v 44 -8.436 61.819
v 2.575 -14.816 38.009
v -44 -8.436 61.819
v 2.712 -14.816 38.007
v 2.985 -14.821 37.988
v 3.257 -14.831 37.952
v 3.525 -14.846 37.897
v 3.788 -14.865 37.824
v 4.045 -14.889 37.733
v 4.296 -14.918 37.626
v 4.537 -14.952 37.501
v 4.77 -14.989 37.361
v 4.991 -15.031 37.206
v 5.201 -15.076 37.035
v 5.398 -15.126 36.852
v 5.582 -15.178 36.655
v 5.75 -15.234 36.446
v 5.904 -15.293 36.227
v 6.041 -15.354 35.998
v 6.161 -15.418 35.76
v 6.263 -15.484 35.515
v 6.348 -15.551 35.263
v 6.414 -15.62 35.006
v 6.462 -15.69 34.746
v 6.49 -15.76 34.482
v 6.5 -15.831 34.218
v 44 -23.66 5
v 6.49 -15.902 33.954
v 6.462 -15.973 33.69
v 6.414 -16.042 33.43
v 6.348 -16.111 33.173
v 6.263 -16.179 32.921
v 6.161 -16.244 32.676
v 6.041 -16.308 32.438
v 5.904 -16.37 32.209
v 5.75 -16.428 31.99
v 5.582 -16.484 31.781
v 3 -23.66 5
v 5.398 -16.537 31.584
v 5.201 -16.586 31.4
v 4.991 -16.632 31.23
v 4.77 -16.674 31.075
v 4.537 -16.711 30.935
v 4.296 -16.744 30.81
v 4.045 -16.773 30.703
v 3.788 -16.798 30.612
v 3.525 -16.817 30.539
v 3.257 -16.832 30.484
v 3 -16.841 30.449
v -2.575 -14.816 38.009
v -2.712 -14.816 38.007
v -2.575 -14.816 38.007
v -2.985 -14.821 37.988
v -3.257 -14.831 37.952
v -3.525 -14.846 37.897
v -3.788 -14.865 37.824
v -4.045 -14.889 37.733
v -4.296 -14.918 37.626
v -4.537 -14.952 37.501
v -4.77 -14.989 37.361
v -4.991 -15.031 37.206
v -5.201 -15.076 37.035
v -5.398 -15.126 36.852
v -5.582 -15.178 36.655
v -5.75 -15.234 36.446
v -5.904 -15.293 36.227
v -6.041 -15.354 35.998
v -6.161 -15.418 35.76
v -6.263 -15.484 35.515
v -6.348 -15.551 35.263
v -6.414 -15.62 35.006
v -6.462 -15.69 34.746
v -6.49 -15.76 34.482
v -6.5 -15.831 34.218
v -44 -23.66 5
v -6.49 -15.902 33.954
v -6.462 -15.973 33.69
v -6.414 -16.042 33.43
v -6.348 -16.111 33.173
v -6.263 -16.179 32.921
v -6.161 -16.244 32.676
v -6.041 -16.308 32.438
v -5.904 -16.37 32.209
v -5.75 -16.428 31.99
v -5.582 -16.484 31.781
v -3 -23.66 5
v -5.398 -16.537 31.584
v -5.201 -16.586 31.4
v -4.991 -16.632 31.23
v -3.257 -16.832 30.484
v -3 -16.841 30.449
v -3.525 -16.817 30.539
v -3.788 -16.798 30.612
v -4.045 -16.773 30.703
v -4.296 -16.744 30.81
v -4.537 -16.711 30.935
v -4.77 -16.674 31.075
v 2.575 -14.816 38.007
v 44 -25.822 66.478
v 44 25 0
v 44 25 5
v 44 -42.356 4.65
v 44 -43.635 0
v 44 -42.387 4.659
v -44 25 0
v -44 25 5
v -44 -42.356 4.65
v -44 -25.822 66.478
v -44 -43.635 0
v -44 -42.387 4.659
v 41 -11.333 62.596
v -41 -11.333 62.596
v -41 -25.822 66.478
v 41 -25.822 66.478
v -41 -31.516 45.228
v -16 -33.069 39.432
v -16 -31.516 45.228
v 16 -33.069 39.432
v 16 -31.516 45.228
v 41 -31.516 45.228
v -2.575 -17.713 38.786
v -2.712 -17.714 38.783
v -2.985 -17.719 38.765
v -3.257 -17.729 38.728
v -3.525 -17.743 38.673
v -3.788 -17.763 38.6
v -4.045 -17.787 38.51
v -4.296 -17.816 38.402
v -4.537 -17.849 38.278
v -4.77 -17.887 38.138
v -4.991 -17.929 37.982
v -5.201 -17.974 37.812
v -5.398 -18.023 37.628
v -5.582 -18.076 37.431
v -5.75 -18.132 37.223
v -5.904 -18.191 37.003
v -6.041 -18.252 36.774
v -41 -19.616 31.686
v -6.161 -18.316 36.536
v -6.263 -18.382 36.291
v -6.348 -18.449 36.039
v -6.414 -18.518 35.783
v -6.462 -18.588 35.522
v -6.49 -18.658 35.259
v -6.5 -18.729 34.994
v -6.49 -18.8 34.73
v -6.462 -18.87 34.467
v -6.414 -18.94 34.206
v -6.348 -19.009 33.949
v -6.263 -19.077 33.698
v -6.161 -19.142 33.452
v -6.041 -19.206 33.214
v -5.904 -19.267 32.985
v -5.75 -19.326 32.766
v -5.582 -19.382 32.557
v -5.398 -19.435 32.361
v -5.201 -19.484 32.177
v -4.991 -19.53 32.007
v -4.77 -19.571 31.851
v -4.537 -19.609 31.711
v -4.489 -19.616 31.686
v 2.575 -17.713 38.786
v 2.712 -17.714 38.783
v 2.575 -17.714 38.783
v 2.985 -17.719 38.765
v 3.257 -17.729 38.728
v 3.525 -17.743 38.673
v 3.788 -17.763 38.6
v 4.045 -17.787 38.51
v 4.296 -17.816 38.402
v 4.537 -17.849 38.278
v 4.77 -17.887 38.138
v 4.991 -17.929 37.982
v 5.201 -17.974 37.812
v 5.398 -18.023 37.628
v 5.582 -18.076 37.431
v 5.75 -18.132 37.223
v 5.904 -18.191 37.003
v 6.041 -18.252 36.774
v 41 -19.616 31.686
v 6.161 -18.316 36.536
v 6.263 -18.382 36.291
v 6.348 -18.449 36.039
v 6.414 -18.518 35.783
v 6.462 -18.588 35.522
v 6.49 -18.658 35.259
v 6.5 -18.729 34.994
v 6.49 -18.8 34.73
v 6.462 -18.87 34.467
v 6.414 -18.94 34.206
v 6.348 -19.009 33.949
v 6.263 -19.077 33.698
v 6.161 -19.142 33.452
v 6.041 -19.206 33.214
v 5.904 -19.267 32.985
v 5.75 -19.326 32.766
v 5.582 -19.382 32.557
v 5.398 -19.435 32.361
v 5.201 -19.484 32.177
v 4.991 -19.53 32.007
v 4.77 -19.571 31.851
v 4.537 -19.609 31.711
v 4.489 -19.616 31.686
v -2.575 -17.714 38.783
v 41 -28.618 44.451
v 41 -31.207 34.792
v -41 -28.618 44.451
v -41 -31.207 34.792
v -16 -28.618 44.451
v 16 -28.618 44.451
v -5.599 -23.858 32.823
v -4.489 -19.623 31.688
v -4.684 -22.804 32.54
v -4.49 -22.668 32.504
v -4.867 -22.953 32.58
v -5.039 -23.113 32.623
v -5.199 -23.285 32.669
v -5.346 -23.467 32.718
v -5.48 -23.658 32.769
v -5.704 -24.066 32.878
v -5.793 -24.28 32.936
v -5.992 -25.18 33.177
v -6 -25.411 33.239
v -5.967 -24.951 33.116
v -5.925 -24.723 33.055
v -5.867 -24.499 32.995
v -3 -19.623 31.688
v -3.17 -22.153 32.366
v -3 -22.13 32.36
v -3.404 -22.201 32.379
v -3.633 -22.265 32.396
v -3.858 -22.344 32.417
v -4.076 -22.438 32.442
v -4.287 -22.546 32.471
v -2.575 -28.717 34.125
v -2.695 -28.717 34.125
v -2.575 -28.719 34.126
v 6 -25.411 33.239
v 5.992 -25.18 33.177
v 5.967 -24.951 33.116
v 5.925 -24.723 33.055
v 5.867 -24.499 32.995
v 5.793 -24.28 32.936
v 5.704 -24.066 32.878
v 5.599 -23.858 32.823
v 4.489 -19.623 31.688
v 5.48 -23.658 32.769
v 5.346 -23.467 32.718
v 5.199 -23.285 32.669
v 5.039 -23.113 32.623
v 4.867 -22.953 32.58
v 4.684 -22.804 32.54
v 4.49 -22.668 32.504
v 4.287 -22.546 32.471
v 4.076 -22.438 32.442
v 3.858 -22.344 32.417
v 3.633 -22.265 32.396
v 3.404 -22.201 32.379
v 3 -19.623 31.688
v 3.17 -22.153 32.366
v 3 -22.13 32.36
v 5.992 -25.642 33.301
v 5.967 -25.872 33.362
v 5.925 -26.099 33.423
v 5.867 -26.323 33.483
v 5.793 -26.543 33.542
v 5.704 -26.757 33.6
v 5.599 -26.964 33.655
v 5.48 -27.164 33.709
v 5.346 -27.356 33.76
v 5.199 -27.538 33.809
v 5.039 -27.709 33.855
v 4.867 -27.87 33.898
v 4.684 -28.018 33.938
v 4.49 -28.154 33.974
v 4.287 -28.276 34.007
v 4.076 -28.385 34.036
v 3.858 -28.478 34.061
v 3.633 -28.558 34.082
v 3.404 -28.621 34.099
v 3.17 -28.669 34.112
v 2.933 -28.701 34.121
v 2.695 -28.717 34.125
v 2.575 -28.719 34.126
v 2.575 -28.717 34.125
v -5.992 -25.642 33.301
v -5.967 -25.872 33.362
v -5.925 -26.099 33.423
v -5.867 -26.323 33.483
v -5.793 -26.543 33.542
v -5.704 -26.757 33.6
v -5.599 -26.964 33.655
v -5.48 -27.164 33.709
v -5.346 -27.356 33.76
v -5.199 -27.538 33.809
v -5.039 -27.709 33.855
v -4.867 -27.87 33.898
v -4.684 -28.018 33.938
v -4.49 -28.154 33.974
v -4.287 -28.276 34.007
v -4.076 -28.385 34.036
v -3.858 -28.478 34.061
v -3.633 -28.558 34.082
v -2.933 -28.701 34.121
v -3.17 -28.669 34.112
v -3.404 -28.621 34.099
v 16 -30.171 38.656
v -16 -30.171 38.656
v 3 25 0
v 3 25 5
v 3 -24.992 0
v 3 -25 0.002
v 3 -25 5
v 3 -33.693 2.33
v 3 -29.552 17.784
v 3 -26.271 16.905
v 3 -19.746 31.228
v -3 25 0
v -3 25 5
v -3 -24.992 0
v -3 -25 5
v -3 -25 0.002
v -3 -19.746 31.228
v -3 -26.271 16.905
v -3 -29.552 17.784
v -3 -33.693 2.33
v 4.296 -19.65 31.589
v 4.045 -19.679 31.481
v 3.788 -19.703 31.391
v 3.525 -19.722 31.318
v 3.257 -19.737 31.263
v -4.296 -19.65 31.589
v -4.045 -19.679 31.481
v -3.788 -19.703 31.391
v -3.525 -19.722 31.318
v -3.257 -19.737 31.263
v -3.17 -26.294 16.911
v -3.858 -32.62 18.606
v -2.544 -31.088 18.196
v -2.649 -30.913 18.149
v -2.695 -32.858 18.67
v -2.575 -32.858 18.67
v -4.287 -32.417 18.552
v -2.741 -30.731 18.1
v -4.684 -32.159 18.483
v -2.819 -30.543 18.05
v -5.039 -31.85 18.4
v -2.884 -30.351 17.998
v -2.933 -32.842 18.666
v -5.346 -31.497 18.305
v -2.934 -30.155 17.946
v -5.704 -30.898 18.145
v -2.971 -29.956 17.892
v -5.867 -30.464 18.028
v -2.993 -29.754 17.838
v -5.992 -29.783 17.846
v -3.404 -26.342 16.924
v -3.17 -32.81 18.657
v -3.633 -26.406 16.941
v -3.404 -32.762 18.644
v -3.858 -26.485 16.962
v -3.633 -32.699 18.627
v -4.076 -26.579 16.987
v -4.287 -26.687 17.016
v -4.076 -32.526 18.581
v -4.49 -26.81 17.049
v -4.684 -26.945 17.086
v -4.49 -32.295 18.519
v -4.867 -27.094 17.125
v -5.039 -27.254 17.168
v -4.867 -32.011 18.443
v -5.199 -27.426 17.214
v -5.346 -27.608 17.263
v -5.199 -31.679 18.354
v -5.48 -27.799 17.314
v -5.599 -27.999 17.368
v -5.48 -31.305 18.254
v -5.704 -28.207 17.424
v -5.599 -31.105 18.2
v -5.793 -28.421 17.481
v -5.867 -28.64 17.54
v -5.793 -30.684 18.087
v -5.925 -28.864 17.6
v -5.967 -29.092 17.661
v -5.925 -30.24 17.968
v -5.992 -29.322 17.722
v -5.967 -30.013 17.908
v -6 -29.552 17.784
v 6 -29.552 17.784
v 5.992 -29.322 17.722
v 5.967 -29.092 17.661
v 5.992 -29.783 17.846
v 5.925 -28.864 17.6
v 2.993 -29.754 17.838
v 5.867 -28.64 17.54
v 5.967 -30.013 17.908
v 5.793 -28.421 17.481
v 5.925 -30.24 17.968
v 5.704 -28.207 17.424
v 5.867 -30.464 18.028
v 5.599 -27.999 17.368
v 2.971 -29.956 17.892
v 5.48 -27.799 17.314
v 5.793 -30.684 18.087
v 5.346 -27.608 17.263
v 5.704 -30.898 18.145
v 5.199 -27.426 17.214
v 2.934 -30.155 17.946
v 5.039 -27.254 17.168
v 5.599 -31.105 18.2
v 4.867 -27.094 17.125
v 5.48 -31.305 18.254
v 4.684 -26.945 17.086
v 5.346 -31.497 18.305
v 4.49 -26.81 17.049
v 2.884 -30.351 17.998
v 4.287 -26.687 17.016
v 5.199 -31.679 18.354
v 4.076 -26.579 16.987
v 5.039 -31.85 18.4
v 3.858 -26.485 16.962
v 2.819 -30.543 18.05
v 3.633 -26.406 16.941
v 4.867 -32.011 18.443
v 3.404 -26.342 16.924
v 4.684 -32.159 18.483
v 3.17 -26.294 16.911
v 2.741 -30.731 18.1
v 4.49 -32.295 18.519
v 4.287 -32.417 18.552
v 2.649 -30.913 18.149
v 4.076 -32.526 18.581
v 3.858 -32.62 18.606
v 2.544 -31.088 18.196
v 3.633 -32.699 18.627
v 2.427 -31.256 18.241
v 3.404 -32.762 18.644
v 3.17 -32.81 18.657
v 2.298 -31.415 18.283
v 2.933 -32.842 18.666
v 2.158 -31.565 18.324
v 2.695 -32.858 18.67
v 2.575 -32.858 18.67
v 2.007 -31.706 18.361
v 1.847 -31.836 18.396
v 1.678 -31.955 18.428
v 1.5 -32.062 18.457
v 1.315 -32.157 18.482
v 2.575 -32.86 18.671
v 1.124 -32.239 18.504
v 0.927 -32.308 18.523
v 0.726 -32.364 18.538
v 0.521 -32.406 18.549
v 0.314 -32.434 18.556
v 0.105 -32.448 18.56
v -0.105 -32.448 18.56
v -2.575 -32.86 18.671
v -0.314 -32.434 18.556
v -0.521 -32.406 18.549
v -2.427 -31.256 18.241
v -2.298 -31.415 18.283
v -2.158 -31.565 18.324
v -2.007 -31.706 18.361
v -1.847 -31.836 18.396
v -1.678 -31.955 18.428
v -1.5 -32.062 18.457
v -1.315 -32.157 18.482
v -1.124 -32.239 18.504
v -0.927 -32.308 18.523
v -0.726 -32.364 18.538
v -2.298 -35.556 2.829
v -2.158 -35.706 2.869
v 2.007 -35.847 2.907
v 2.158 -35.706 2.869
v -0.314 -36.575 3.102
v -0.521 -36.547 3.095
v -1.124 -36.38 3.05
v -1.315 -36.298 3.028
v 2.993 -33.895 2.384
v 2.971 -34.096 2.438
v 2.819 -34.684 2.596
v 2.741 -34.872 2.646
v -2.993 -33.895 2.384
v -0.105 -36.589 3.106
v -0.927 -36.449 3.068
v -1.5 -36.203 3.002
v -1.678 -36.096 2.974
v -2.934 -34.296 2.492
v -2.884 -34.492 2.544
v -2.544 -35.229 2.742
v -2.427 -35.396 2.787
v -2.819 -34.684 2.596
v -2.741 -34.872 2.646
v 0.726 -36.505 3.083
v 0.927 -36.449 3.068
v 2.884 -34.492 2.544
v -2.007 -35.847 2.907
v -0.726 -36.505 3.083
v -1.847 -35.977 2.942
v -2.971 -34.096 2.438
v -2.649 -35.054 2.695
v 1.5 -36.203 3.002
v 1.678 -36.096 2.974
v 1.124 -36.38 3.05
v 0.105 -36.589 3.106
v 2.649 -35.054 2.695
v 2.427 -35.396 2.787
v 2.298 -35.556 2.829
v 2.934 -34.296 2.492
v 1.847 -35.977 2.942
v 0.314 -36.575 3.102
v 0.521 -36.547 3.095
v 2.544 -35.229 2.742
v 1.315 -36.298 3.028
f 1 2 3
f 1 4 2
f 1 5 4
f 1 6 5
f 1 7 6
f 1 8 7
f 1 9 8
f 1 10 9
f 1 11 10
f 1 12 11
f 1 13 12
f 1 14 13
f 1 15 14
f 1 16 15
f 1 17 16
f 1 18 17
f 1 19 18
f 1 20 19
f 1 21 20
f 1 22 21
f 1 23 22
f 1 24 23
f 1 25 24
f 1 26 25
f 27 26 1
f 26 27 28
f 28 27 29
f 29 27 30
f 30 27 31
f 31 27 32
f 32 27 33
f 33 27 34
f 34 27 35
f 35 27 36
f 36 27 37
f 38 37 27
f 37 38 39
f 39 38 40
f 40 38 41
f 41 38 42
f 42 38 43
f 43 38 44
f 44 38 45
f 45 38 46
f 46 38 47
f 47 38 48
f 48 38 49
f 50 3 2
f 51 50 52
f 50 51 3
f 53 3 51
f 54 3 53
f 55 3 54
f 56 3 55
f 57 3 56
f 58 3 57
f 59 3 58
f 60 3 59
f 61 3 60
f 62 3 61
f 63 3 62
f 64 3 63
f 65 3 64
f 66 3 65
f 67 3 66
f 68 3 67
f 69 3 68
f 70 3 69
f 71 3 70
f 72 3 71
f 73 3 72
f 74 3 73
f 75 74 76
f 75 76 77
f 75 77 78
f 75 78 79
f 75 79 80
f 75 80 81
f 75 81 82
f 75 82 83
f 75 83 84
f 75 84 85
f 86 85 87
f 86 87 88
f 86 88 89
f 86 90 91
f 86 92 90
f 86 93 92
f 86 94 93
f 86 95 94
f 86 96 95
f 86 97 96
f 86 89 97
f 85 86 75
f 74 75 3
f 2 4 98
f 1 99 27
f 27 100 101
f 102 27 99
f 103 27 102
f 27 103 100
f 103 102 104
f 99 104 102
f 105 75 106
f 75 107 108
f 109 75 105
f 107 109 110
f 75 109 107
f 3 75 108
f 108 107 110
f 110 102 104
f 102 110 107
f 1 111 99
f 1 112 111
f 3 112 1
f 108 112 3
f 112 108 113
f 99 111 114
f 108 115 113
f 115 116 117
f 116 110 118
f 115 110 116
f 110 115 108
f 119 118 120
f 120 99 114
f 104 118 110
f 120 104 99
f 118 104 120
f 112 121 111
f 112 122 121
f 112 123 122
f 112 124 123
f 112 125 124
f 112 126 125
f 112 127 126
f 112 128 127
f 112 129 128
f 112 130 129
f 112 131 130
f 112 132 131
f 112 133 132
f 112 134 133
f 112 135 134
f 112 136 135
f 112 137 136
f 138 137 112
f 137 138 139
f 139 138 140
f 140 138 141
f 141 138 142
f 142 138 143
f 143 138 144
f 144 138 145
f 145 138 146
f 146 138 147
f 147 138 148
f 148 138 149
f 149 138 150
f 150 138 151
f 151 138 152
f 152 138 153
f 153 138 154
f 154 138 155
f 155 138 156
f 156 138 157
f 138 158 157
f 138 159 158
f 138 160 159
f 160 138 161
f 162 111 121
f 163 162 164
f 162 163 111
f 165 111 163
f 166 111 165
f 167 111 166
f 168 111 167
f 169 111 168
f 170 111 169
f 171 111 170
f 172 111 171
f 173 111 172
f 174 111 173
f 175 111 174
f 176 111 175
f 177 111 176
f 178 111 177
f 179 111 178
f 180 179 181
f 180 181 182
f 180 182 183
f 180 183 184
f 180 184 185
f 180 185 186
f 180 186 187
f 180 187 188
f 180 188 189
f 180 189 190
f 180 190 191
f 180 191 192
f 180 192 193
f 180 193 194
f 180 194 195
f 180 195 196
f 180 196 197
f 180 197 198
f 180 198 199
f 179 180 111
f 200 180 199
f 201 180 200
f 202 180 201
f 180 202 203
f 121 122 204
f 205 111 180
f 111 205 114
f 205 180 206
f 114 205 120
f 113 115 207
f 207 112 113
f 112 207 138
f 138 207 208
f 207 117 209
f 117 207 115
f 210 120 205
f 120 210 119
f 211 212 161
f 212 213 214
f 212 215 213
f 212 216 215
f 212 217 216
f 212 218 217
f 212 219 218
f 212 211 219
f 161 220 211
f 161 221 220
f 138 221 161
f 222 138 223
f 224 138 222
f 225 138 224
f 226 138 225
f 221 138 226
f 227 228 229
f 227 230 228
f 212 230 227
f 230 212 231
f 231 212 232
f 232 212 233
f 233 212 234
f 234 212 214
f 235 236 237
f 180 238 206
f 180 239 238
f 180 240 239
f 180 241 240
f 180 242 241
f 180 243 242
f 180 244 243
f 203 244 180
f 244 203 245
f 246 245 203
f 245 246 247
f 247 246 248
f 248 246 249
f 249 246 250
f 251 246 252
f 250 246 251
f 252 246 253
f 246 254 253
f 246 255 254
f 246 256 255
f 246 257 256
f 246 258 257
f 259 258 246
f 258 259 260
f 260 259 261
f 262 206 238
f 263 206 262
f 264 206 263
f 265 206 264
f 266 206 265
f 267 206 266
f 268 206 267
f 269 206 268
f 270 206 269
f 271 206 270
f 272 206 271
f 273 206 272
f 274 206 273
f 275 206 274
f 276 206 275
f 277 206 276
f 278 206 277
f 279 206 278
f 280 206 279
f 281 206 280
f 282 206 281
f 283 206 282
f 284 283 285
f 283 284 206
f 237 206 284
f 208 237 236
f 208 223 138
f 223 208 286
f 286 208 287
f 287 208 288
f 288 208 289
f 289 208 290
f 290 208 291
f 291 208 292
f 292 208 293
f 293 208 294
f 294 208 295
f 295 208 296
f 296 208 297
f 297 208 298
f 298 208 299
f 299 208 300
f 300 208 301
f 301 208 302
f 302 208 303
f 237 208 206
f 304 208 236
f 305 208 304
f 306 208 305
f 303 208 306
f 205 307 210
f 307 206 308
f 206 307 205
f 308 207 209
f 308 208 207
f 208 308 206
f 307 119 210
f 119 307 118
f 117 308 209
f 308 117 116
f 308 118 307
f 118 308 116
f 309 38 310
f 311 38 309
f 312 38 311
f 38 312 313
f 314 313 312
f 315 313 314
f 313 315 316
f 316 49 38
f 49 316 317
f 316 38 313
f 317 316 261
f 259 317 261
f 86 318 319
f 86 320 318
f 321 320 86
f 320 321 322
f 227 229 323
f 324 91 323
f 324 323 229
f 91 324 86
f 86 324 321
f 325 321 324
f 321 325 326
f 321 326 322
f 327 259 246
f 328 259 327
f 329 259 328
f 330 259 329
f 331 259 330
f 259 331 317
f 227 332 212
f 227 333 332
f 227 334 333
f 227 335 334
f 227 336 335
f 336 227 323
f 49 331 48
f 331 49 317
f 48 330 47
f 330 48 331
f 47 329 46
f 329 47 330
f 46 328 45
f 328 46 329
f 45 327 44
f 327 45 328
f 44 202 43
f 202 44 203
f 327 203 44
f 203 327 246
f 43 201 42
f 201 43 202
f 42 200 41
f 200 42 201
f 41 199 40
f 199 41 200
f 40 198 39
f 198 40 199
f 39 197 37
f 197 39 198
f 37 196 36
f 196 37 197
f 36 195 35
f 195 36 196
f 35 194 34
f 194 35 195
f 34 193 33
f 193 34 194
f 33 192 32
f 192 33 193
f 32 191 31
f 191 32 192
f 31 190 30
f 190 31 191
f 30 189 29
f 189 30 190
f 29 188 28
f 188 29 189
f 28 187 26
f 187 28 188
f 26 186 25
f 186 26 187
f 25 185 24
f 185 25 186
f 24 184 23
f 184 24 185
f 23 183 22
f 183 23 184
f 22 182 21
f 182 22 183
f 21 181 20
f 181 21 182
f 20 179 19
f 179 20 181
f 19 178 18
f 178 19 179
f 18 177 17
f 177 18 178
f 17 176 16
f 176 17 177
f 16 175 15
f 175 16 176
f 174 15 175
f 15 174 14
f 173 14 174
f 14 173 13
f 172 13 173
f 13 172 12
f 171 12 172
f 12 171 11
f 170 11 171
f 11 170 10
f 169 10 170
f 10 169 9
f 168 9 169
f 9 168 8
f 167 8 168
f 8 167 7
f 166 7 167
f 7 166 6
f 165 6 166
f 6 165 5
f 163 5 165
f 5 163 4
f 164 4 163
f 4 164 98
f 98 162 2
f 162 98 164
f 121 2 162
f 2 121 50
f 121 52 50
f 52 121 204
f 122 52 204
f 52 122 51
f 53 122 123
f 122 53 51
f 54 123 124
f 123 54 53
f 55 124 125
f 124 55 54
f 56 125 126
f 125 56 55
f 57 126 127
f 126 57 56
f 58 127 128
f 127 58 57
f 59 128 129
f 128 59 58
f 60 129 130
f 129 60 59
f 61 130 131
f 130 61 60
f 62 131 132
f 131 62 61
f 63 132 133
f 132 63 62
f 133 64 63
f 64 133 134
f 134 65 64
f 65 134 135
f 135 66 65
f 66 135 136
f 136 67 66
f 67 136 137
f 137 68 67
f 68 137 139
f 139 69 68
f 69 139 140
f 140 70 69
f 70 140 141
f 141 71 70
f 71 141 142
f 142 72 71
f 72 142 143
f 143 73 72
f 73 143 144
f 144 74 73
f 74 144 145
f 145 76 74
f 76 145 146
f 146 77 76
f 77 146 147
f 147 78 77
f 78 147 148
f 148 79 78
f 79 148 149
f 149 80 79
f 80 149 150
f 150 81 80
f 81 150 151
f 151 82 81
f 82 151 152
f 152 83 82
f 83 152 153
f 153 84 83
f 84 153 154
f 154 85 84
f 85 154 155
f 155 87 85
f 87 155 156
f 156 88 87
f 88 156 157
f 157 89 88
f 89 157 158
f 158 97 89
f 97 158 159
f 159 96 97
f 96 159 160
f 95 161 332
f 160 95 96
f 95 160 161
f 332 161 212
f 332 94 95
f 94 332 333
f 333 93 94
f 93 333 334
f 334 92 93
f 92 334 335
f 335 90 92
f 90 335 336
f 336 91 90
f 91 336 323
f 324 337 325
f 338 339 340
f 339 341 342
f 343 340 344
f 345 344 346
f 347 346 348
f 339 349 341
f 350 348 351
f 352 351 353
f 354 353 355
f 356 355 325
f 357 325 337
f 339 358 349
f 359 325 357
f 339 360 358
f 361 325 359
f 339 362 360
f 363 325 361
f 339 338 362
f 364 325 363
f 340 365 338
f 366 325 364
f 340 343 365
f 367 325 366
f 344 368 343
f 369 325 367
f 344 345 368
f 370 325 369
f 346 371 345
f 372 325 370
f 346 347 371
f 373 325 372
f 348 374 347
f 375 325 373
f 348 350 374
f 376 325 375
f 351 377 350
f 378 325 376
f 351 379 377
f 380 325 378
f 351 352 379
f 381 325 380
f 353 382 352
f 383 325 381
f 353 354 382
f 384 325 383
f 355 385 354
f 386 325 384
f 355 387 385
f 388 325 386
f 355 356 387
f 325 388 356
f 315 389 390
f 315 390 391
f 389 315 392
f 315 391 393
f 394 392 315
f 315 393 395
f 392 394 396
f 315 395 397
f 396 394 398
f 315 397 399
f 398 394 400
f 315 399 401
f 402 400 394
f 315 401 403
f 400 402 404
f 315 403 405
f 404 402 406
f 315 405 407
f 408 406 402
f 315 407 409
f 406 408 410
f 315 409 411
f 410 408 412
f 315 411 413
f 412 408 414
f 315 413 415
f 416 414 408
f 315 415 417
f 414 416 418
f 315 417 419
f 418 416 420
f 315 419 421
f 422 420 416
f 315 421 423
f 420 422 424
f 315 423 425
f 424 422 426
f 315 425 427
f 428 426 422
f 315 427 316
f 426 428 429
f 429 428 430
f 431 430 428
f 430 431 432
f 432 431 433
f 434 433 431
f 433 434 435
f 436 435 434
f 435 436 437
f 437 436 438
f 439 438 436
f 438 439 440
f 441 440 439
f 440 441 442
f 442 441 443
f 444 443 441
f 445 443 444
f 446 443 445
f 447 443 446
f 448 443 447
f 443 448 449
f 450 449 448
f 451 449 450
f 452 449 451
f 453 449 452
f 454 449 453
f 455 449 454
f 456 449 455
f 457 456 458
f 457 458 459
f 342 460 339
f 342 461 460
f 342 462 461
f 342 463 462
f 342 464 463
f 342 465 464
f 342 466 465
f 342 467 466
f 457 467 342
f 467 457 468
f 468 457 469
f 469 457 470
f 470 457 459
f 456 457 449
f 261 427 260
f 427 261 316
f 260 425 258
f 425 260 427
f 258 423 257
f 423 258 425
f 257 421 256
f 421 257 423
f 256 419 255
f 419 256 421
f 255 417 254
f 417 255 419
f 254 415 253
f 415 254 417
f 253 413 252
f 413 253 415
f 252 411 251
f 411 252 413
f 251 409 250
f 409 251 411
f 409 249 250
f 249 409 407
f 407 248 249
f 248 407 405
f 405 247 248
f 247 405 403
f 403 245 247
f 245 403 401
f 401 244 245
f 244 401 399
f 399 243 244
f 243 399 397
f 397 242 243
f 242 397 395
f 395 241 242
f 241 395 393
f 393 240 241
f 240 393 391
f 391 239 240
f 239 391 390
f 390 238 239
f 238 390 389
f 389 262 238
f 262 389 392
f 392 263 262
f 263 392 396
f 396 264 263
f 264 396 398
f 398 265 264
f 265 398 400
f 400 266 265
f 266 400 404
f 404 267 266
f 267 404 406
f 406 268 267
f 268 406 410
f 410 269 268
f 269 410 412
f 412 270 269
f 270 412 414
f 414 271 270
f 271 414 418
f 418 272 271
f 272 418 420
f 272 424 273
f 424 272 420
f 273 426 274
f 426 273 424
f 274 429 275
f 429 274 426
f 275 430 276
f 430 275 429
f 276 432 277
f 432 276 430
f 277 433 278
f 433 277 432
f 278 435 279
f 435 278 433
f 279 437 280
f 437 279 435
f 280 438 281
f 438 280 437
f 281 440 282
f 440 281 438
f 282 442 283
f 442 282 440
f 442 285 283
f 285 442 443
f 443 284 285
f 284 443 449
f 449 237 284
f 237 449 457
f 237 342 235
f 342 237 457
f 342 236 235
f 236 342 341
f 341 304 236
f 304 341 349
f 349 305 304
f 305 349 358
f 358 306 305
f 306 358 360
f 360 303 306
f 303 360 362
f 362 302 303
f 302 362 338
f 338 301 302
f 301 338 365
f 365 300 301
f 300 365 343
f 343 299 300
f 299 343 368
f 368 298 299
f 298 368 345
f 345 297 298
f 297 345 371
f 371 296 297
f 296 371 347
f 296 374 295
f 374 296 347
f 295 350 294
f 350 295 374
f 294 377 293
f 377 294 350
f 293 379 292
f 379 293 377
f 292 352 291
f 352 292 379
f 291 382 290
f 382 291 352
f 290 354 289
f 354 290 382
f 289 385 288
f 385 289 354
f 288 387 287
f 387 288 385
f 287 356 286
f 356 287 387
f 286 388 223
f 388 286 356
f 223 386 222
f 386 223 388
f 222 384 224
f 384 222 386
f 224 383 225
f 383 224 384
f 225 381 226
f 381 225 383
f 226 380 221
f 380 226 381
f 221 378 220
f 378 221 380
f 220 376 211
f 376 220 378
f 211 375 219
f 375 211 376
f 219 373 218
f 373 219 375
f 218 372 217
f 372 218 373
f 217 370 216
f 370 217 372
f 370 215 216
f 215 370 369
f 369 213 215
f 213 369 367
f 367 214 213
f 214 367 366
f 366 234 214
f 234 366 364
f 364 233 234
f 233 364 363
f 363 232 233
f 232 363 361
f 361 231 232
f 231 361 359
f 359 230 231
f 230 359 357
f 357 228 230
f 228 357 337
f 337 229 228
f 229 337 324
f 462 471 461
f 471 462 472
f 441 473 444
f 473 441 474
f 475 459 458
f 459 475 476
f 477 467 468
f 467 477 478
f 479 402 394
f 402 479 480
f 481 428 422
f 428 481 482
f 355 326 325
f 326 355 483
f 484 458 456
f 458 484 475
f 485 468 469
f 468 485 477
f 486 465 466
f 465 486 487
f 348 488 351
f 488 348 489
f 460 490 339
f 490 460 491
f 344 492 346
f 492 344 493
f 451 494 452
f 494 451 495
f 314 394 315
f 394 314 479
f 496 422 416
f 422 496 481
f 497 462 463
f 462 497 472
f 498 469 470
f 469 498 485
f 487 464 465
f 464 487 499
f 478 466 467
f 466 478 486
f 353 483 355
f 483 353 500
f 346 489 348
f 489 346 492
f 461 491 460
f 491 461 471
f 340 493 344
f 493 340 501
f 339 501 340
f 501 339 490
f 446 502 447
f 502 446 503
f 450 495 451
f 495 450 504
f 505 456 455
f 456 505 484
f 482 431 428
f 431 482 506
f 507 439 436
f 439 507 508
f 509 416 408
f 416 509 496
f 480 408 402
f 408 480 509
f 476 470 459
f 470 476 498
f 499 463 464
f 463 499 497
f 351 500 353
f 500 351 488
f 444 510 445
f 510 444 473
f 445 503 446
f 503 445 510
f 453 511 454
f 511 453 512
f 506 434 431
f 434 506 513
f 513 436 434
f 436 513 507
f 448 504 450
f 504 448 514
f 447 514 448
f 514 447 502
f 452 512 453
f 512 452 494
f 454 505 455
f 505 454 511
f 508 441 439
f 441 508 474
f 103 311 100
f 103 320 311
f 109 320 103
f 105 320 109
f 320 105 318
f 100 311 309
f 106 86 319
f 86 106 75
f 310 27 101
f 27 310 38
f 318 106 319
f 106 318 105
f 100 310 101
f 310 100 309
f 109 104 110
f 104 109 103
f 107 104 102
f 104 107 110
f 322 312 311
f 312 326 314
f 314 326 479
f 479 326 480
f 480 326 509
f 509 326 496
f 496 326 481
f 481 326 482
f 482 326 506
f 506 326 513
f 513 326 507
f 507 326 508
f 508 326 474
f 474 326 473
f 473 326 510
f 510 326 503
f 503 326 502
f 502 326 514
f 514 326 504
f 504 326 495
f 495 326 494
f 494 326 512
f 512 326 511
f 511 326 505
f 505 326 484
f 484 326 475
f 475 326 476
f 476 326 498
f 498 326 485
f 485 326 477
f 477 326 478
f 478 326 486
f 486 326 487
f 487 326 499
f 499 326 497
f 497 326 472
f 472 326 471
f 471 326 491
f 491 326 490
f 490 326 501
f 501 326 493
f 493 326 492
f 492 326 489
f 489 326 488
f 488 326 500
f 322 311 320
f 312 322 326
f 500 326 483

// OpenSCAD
//!OpenSCAD
// title      : Dockitall Parametric Charging Dock
// author     : Stuart P. Bentley (@stuartpb)
// version    : 0.1.0
// file       : dockitall.scad

/* [Measurements] */

// These measurements are based on my Pixel 2 XL in a
// Ringke Fusion case, and the cable that comes with it.

// The width of the device.
device_width = 80;
// The depth (thickness) of the device.
device_depth = 10;

// Offset of the port from the center of the bottom.
port_x_offset = 0;
// Y offset is positive ("up") going closer to the face.
port_y_offset = 0;

// The width of the USB plug.
plug_width = 11;
// The depth (thickness) of the USB plug.
plug_depth = 5.85;
// The roundness of the USB plug (currently only supports plug_depth/2 and 0).
plug_radius = plug_depth/2;
// The length of the plug before tapering off to the cable.
plug_length = 16;
// The diameter of the cable immediately following the end of the plug.
cable_gauge = 5;

/* [Tolerances] */

// How much extra space to leave around the device (and through-hole for plug).
device_tolerance = 1;
// How much extra space to leave around the plug.
plug_tolerance = .5;
// How much extra space to leave around the cable.
cable_tolerance = .5;

/* [Parameters] */

// What angle to recline the phone at (from a straight-up zero degrees).
recline_angle = 15;

base_length = 50;

// The height of the dock underneath the phone.
// Should be at least as long as the plug, plus room for the cable to turn.
chin_height = 32;

back_wall_length = 32;
left_wall_length = back_wall_length;
right_wall_length = left_wall_length;
// The height of the lip in front of the device.
lip_height = 10;

// The thickness of the bottom base.
base_thickness = 5;
back_wall_thickness = 3;
left_wall_thickness = back_wall_thickness;
right_wall_thickness = left_wall_thickness;
lip_thickness = back_wall_thickness;

// How wide of a gap to put in the middle of the lip (eg. for a speaker).
lip_cleft_width = 32;
// The height of the lip within the cleft (ie. beneath the speaker).
lip_cleft_height = 4;

/* [Rendering] */

// Epsilon value for enveloping differences
eps = 1/128;
$fn = 90;

/* [Hidden] */

/*
Assumptions in the current formulation:

- Back will have a thickness (no epsilon applied for back)
- Back will be taller than walls/lip
- Device is thicker than plug
- Chin is longer than plug
*/

device_depth_total = device_depth + 2*device_tolerance;
dock_depth = device_depth_total + back_wall_thickness + lip_thickness;
device_width_total = device_width + 2*device_tolerance;
dock_width = device_width_total + left_wall_thickness + right_wall_thickness;
dock_length = back_wall_length + chin_height;
plug_width_total = plug_width + plug_tolerance;
plug_depth_total = plug_depth + plug_tolerance;
cable_total = cable_gauge + 2*cable_tolerance;

device_carveout_left = -device_width_total/2 -
  (left_wall_thickness ? 0 : eps);
device_carveout_width = device_width_total +
  (left_wall_thickness ? 0 : eps) + (right_wall_thickness ? 0 : eps);
device_carveout_above_lip_depth = device_depth_total + lip_thickness + eps;
device_carveout_above_lip_bottom = chin_height + lip_height;
device_carveout_above_lip_height = back_wall_length + eps;
device_carveout_cleft_height = lip_height - lip_cleft_height + eps;
plug_carveout_depth = back_wall_thickness + port_y_offset + device_depth_total/2;

left_wall_cut = back_wall_length - left_wall_length;
right_wall_cut = back_wall_length - right_wall_length;

module plughole(tolerance) {
  union () {
    square([plug_width - 2*plug_radius, plug_depth + 2*tolerance], center=true);
    translate([-plug_width/2 + plug_radius, 0]) circle(r=plug_radius + tolerance);
    translate([plug_width/2 - plug_radius, 0]) circle(r=plug_radius + tolerance);
  }
}

union () {
  // dock
  translate([0, -base_length/2, 0]) rotate([90 - recline_angle, 0, 0]) difference () {

    // starting block
    translate([-dock_width/2, 0, 0]) linear_extrude(dock_depth) square([dock_width, dock_length]);

    // face carveout down to lip
    translate([device_carveout_left, device_carveout_above_lip_bottom, back_wall_thickness])
      linear_extrude(device_carveout_above_lip_depth)
      square([device_carveout_width, device_carveout_above_lip_height]);

    // carveout behind lip
    translate([device_carveout_left, chin_height, back_wall_thickness])
      linear_extrude(device_depth_total)
      square([device_carveout_width, lip_height + eps]);

    // left wall height carveout
    if (left_wall_cut && left_wall_thickness)
      translate([-dock_width/2 - eps, chin_height + left_wall_length, back_wall_thickness])
        linear_extrude(device_carveout_above_lip_depth)
        square([left_wall_thickness + 2*eps, left_wall_cut + eps]);

    // right wall height carveout
    if (right_wall_cut && right_wall_thickness)
      translate([dock_width/2 - right_wall_thickness - eps,
        chin_height + right_wall_length, back_wall_thickness])
          linear_extrude(device_carveout_above_lip_depth)
          square([right_wall_thickness + 2*eps, right_wall_cut + eps]);

    // lip cleft carveout
    translate([-lip_cleft_width/2, chin_height + lip_cleft_height, back_wall_thickness])
      linear_extrude(device_carveout_above_lip_depth)
      square([lip_cleft_width, device_carveout_cleft_height]);

    // cable track carveout
    translate([-cable_total/2 + port_x_offset, 0, -eps]) linear_extrude(plug_carveout_depth + eps)
      square([cable_total, chin_height + 2*eps]);

    // through-hole plug carveout in back
    translate([port_x_offset, chin_height + plug_depth/2 + cable_tolerance, -eps])
      linear_extrude(back_wall_thickness + 2*eps)
      plughole(device_tolerance);

    // docking plug carveout in chin
    translate([0, chin_height + eps, plug_carveout_depth])
      rotate([90, 0, 0]) linear_extrude(plug_length + eps)
      translate([port_x_offset, port_y_offset]) plughole(plug_tolerance);

    // cable below plug carveout
    translate([0, chin_height + eps, plug_carveout_depth])
      rotate([90, 0, 0]) linear_extrude(chin_height + eps)
      translate([port_x_offset, port_y_offset]) circle(d = cable_total);
  }

  // base
  translate([-dock_width/2, -base_length/2, 0]) linear_extrude(base_thickness)
    difference() {
      square([dock_width, base_length]);
      translate([dock_width/2 - cable_total/2 + port_x_offset, -eps])
        square([cable_total, base_length + eps]);
    }

  // frontal foot between base and dock
  translate([dock_width/2, -base_length/2, 0]) rotate([90, 0, -90]) linear_extrude(dock_width)
    polygon([[-eps, 0],
      [dock_depth / cos(recline_angle), 0],
      [dock_depth * cos(recline_angle), dock_depth * sin(recline_angle)]]);
}
